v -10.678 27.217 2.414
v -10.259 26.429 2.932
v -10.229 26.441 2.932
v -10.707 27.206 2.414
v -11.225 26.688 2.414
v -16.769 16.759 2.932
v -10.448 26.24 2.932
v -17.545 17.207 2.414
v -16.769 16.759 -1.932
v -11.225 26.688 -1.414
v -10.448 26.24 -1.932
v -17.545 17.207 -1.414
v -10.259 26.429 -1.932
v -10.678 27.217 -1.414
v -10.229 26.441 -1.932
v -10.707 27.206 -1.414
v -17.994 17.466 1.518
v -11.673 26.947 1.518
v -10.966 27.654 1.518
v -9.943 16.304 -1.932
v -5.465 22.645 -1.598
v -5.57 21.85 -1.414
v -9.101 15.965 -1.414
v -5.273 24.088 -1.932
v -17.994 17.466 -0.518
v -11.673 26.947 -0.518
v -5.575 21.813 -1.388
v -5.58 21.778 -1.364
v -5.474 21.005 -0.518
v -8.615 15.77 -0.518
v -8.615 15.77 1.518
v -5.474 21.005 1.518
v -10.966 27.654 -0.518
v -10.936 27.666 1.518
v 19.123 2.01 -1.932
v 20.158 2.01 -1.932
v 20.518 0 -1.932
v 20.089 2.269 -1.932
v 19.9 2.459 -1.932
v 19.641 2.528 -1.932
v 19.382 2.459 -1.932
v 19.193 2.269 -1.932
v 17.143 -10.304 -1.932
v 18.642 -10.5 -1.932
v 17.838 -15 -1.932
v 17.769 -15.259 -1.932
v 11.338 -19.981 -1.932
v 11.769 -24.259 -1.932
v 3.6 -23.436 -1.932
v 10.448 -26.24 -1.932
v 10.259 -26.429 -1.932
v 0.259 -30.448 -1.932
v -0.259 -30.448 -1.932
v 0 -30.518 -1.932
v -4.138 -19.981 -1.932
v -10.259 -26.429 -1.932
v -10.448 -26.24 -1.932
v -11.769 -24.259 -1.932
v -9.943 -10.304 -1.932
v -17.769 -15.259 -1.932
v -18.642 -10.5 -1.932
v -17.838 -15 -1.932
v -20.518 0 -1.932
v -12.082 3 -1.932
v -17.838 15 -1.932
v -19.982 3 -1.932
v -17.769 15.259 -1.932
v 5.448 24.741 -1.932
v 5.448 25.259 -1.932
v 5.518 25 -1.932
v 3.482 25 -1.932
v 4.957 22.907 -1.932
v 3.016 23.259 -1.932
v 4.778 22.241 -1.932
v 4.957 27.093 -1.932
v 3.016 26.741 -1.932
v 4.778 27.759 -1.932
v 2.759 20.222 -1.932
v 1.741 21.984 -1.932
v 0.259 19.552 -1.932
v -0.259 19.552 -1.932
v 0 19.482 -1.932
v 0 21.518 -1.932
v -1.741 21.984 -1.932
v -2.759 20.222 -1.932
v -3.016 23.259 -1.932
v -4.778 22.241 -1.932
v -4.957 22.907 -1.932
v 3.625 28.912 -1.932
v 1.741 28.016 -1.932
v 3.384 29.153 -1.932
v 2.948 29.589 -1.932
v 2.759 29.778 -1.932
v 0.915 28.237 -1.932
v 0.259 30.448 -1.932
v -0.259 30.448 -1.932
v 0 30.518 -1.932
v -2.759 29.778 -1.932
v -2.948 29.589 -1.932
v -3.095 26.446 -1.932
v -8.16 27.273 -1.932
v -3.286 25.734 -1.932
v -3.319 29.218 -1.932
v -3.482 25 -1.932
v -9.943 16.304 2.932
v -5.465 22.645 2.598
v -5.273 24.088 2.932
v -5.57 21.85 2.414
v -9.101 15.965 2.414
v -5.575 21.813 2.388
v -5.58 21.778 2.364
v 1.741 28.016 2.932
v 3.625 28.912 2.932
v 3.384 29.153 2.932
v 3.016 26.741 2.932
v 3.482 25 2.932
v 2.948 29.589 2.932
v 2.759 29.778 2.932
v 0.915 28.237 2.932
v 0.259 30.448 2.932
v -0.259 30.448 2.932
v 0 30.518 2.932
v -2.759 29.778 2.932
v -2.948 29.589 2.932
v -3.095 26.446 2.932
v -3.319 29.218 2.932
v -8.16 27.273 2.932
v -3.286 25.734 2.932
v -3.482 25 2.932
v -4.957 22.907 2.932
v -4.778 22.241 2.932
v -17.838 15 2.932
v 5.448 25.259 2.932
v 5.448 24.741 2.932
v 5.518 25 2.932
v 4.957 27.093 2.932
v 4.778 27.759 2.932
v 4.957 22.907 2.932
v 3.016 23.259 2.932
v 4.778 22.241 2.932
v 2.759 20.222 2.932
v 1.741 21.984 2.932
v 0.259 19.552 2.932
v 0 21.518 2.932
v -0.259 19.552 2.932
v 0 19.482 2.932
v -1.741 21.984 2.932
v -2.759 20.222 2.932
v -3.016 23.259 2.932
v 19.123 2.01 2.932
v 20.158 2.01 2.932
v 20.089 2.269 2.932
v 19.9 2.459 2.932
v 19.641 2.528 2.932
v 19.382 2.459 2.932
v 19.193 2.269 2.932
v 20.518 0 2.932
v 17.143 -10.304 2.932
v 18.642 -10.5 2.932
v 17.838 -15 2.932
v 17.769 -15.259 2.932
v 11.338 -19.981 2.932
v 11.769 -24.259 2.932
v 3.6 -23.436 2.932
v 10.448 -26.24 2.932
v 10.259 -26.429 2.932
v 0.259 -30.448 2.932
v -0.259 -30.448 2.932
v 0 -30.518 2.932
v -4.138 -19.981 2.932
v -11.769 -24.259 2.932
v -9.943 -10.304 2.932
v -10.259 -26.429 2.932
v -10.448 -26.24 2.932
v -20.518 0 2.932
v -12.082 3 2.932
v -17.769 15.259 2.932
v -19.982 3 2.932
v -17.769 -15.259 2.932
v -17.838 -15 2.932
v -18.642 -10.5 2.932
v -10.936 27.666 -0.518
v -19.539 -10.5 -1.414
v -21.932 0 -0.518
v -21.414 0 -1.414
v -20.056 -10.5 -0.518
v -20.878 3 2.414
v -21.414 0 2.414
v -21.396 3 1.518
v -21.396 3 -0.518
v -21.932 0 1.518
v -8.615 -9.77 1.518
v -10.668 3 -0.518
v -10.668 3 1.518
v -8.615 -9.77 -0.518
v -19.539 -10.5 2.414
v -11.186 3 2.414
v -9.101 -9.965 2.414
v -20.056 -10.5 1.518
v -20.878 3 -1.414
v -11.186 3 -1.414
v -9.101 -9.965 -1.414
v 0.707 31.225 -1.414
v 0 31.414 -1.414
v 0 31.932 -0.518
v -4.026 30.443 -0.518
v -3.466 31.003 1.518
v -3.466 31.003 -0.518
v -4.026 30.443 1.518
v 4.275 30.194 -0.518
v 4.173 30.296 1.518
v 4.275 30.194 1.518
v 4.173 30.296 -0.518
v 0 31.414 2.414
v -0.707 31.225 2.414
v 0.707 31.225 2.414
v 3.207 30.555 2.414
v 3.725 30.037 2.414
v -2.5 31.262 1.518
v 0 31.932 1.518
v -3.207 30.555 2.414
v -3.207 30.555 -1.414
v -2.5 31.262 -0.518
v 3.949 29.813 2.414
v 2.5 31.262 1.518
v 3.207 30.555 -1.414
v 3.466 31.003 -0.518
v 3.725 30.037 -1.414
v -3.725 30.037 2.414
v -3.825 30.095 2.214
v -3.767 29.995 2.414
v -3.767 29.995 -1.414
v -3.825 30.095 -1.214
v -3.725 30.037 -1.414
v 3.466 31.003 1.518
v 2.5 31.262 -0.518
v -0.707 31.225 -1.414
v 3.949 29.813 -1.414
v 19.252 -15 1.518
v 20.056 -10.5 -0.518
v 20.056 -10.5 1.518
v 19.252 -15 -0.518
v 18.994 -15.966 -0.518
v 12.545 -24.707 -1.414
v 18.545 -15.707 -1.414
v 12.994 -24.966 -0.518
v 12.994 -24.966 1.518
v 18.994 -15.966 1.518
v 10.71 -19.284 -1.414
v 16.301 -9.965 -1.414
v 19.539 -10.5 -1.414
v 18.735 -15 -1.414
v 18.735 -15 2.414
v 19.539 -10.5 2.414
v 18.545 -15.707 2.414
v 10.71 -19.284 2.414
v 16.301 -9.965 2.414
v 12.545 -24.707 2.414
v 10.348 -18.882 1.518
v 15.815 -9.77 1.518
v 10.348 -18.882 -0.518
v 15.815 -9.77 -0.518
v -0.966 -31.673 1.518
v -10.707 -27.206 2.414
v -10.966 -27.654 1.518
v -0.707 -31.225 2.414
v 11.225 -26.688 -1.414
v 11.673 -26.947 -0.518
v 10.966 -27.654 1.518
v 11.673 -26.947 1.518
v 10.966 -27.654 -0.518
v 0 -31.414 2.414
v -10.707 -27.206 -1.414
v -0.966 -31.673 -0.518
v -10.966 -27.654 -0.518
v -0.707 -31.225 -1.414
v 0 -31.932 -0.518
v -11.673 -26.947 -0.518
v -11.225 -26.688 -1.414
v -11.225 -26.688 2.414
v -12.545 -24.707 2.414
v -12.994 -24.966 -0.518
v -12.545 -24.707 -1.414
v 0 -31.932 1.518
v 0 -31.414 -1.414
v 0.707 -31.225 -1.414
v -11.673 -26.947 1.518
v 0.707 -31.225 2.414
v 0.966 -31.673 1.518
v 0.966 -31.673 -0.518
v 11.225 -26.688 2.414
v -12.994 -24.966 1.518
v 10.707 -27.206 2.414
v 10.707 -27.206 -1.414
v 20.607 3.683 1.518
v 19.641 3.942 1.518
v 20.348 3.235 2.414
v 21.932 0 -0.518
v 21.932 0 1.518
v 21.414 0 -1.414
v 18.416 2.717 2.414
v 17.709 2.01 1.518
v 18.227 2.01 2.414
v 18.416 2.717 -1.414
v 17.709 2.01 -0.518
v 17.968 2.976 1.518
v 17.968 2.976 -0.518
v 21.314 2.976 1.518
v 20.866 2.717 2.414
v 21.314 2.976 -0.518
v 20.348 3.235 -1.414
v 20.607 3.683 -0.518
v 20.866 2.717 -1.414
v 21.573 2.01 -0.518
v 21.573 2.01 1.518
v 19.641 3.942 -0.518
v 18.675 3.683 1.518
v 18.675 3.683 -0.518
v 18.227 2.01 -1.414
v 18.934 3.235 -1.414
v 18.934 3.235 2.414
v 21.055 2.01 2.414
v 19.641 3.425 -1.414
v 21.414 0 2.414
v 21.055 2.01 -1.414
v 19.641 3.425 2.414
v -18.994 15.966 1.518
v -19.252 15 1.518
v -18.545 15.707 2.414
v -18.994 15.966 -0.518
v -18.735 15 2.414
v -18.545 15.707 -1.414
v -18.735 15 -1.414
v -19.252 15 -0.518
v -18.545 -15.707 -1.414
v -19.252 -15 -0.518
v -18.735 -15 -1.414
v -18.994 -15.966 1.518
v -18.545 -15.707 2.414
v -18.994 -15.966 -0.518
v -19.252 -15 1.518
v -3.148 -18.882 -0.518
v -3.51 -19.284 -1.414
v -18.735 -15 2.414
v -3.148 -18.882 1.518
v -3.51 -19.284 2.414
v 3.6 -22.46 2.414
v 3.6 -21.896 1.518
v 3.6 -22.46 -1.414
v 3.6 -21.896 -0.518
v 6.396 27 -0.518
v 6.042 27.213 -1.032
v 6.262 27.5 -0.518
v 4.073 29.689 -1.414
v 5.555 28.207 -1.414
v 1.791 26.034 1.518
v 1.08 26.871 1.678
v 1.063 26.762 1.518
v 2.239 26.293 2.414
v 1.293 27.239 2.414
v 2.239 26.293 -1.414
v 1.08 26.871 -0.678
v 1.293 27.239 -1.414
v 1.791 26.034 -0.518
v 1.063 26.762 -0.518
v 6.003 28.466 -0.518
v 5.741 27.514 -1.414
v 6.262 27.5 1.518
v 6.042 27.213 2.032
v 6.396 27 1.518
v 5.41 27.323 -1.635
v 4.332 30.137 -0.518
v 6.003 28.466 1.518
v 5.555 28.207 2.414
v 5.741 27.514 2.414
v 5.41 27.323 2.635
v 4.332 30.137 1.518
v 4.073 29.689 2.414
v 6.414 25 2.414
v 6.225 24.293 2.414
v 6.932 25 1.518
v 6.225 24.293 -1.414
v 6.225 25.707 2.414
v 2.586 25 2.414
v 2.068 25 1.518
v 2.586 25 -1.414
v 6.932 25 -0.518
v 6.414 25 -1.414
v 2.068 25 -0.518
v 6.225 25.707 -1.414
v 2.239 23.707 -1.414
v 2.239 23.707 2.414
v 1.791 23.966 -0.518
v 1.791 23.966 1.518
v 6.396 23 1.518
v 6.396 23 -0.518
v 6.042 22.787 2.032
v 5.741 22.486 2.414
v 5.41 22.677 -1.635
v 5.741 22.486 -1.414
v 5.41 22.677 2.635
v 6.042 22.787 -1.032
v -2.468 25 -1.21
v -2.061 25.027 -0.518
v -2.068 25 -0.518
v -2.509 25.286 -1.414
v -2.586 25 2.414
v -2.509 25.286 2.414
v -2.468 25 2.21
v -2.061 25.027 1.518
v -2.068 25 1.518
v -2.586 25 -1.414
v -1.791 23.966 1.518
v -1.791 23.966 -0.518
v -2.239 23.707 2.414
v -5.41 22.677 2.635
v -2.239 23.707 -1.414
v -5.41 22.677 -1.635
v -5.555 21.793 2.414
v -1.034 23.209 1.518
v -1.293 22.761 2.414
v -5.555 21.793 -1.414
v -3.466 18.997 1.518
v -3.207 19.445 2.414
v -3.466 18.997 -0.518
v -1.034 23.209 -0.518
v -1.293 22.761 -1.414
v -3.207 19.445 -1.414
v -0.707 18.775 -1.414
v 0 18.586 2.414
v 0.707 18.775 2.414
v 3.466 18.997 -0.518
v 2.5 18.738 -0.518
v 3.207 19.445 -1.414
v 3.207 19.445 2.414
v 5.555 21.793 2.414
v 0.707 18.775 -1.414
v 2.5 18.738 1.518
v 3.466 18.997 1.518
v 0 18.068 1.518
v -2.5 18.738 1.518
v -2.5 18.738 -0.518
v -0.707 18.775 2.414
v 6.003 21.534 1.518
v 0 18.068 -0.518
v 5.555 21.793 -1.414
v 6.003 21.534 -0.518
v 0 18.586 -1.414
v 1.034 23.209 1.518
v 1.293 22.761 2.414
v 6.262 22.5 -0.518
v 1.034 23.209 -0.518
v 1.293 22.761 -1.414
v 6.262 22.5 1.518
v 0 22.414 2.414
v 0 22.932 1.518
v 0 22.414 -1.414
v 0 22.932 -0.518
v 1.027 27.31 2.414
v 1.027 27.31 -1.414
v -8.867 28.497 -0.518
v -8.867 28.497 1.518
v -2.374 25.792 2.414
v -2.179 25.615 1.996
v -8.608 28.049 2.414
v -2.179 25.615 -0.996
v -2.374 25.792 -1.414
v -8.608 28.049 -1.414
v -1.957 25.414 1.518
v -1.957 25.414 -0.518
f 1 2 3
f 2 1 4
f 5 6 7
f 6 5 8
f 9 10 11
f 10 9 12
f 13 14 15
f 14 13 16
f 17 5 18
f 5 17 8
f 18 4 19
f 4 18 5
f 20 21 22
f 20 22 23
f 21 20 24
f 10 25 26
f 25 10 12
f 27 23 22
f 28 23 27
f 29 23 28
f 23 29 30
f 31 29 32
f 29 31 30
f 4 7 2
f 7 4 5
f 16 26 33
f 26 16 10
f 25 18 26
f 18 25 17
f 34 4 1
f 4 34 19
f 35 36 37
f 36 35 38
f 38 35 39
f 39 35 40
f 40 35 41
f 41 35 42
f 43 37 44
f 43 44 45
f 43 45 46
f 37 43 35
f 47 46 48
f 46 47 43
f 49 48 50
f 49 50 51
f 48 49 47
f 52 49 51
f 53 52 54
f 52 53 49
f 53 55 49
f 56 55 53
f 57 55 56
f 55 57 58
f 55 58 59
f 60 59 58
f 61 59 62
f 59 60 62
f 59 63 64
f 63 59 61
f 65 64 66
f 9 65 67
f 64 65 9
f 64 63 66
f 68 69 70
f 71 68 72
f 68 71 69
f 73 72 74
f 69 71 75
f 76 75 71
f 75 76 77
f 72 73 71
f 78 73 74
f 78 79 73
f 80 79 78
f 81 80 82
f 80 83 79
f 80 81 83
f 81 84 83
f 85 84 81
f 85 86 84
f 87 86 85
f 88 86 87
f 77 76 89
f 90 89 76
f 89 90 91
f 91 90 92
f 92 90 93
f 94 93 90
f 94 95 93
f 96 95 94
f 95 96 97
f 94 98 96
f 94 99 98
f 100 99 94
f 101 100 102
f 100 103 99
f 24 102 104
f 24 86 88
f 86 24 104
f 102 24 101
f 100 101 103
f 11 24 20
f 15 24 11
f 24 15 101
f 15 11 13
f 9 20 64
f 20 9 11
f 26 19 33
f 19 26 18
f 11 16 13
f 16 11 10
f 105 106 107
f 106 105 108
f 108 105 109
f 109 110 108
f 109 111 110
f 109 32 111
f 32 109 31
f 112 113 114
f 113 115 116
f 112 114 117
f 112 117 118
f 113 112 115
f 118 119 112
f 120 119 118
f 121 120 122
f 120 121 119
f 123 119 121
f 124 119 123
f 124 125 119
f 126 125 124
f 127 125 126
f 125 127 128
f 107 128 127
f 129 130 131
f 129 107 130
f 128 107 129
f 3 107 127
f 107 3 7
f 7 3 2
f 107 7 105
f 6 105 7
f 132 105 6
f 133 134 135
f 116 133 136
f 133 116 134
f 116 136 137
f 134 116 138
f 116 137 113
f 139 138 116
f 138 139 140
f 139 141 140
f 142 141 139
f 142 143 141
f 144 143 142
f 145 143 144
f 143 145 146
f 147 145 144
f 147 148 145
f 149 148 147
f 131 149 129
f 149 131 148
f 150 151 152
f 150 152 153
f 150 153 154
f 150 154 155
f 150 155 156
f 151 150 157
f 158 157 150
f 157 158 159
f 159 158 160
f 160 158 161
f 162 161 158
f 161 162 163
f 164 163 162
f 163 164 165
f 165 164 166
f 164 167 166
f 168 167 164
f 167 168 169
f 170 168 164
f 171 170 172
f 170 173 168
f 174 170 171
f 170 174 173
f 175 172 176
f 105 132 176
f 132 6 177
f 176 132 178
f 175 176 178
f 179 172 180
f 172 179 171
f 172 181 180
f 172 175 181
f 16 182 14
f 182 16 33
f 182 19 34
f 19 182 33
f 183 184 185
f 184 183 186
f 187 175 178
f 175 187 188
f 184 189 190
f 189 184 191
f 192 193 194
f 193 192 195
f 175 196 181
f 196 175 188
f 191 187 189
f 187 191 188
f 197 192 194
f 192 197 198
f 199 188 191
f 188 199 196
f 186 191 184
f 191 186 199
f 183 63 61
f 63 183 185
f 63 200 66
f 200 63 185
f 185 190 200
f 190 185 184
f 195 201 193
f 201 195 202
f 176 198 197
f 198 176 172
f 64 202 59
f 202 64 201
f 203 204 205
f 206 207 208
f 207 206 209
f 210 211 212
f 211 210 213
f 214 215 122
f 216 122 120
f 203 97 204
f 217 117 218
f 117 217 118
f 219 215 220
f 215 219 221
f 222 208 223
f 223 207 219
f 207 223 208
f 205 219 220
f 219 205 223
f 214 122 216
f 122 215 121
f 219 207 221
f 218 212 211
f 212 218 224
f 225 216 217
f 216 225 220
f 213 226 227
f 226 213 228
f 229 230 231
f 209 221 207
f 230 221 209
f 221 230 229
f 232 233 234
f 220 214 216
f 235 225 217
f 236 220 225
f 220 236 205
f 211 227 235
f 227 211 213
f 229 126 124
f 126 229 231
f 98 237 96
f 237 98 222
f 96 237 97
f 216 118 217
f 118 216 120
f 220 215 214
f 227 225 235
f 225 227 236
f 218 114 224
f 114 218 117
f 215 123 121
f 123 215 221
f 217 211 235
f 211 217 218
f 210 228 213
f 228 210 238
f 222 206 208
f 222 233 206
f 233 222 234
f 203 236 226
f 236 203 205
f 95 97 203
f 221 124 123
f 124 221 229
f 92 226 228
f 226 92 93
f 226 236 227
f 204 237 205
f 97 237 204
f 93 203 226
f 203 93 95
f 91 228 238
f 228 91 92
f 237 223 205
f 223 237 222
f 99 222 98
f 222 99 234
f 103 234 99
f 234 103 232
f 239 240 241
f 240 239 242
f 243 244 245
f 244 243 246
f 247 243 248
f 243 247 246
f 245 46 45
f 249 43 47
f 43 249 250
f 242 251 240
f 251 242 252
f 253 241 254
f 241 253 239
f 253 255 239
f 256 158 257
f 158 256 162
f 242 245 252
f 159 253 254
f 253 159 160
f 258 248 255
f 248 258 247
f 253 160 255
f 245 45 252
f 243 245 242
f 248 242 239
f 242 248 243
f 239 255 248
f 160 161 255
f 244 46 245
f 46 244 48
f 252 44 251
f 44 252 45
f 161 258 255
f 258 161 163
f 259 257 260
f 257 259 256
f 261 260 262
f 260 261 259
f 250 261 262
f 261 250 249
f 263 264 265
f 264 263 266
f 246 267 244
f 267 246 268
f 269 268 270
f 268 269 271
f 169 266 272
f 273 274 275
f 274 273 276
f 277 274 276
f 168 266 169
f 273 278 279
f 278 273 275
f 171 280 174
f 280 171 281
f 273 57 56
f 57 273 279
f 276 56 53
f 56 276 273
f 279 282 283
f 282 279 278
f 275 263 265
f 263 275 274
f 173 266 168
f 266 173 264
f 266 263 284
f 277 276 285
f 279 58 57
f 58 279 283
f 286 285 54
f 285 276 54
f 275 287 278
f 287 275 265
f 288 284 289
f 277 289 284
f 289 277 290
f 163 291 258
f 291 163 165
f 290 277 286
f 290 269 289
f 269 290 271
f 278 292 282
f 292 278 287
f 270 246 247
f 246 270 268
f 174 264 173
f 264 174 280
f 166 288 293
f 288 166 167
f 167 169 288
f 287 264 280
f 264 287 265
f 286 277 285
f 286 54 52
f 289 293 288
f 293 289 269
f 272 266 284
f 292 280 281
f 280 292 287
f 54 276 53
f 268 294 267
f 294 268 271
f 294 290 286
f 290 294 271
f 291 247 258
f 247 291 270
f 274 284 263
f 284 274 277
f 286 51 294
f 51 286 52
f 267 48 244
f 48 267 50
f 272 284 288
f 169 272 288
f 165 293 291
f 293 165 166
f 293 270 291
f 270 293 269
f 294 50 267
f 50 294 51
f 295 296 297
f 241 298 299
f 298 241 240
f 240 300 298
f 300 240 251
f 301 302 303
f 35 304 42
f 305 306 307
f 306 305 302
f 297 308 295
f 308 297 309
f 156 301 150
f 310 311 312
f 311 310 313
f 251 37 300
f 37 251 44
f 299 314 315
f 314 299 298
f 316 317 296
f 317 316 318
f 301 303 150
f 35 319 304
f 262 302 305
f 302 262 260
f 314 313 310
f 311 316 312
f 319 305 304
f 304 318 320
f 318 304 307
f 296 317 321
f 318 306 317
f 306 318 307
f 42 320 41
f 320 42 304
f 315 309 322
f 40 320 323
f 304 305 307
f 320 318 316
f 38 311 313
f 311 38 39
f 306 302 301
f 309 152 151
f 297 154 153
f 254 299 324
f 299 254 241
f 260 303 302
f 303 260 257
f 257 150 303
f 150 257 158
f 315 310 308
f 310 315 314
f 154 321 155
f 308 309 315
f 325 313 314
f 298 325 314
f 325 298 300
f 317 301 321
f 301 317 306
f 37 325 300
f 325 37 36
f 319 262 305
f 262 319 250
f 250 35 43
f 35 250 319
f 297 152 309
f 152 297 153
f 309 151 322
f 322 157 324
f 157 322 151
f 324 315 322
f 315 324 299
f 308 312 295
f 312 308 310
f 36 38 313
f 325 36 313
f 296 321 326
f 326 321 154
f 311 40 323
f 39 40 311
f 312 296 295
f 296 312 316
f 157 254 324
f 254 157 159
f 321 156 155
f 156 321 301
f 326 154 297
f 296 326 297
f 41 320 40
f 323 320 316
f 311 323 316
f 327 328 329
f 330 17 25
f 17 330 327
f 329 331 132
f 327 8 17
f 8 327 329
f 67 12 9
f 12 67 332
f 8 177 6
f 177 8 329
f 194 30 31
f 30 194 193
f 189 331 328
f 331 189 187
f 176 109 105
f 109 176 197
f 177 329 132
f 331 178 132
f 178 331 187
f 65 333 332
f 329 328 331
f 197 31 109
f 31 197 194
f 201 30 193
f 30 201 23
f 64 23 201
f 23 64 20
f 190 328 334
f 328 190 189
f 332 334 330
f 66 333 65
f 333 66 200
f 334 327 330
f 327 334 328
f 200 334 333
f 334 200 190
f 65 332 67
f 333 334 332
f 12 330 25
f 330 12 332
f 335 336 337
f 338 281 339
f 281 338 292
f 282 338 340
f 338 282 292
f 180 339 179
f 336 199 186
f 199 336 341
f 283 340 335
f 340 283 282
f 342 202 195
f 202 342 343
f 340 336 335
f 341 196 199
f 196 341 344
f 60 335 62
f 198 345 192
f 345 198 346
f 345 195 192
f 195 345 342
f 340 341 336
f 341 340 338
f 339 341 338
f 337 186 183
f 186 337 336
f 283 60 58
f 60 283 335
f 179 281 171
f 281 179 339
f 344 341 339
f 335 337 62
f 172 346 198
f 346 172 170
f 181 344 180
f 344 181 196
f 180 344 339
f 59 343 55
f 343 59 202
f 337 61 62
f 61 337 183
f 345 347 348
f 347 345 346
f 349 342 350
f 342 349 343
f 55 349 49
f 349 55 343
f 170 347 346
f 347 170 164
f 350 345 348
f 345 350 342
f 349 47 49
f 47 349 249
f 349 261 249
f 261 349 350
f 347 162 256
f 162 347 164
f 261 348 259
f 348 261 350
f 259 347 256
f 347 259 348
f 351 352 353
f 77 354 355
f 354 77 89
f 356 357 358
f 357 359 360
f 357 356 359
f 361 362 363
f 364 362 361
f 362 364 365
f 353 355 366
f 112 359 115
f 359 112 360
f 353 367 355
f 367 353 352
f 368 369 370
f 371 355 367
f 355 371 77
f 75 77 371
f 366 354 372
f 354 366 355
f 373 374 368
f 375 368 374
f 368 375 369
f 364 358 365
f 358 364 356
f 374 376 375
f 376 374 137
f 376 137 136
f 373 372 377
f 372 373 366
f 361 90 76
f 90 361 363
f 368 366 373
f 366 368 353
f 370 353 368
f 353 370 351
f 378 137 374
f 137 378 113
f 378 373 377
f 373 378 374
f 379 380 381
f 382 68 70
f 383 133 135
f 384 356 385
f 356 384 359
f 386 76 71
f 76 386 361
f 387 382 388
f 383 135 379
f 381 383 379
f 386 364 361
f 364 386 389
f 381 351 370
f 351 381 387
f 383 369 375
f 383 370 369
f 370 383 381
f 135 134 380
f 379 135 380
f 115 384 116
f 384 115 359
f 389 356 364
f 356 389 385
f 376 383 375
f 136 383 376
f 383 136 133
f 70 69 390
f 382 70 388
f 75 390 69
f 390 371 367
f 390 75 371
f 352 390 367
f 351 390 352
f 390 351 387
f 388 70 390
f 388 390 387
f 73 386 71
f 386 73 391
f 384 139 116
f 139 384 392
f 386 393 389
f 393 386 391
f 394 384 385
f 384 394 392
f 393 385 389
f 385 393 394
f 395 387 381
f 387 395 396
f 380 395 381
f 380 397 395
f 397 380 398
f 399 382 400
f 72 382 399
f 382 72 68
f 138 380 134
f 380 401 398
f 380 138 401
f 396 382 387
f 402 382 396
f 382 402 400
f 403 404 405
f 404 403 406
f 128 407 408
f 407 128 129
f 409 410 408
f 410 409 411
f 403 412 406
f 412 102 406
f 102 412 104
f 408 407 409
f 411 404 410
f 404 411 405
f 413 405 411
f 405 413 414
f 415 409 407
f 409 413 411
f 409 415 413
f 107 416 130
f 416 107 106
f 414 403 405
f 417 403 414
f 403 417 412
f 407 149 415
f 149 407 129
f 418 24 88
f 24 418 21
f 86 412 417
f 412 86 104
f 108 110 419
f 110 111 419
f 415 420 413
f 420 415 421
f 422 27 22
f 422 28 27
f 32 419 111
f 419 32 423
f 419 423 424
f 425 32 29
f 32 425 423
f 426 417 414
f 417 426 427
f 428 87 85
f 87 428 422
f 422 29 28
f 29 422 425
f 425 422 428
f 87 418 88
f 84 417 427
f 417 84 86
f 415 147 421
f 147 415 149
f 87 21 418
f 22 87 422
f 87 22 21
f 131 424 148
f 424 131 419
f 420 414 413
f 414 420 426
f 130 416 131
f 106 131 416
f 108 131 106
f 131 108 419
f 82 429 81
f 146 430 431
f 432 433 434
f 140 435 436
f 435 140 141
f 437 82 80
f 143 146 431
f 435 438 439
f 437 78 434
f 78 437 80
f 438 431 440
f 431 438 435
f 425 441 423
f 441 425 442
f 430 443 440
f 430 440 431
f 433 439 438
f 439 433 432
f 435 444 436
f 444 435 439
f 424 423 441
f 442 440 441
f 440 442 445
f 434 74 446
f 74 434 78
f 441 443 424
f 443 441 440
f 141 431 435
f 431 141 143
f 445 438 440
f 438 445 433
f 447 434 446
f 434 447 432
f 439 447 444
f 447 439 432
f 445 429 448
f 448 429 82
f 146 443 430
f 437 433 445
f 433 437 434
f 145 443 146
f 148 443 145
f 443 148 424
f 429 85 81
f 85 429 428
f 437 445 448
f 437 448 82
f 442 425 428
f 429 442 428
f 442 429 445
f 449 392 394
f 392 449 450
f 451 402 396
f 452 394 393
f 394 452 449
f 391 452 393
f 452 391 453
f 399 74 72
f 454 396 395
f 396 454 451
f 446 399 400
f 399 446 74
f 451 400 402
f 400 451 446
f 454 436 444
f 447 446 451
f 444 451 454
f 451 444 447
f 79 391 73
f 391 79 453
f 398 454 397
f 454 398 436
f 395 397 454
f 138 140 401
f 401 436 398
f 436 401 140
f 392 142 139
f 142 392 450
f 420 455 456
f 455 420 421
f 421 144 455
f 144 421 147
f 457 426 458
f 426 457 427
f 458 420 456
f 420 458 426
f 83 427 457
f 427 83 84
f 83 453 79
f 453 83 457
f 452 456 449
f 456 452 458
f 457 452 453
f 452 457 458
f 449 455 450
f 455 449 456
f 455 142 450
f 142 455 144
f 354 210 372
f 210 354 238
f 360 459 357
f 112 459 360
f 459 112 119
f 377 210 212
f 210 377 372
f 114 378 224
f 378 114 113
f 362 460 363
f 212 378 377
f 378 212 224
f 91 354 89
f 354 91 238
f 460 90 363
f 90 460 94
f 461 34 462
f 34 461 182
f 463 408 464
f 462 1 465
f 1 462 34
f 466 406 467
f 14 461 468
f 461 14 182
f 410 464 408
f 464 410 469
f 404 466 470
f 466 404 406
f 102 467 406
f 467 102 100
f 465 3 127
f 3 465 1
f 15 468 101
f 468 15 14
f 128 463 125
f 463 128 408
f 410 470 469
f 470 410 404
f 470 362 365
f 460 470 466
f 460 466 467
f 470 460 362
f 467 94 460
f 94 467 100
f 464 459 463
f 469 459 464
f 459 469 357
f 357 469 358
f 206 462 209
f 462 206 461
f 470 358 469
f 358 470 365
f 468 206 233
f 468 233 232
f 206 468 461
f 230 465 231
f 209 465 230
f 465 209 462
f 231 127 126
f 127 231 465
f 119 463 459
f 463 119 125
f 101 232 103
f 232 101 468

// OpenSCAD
$fn = 12;

module hook() {
	translate([0, 25, 0])
	difference() {
		cylinder(d=10, h=1);
		
		translate([0, 0, -1])
		cylinder(d=8, h=6);
	}

	scale([1, 1.5, 1])
	difference() {
		cylinder(d=40, h=1);
		
		scale([0.9, 1, 1])
		translate([4, 2, -1])
		cylinder(d=36, h=6);
	}
}

minkowski() {
	hook();
	sphere(r=2);
}
